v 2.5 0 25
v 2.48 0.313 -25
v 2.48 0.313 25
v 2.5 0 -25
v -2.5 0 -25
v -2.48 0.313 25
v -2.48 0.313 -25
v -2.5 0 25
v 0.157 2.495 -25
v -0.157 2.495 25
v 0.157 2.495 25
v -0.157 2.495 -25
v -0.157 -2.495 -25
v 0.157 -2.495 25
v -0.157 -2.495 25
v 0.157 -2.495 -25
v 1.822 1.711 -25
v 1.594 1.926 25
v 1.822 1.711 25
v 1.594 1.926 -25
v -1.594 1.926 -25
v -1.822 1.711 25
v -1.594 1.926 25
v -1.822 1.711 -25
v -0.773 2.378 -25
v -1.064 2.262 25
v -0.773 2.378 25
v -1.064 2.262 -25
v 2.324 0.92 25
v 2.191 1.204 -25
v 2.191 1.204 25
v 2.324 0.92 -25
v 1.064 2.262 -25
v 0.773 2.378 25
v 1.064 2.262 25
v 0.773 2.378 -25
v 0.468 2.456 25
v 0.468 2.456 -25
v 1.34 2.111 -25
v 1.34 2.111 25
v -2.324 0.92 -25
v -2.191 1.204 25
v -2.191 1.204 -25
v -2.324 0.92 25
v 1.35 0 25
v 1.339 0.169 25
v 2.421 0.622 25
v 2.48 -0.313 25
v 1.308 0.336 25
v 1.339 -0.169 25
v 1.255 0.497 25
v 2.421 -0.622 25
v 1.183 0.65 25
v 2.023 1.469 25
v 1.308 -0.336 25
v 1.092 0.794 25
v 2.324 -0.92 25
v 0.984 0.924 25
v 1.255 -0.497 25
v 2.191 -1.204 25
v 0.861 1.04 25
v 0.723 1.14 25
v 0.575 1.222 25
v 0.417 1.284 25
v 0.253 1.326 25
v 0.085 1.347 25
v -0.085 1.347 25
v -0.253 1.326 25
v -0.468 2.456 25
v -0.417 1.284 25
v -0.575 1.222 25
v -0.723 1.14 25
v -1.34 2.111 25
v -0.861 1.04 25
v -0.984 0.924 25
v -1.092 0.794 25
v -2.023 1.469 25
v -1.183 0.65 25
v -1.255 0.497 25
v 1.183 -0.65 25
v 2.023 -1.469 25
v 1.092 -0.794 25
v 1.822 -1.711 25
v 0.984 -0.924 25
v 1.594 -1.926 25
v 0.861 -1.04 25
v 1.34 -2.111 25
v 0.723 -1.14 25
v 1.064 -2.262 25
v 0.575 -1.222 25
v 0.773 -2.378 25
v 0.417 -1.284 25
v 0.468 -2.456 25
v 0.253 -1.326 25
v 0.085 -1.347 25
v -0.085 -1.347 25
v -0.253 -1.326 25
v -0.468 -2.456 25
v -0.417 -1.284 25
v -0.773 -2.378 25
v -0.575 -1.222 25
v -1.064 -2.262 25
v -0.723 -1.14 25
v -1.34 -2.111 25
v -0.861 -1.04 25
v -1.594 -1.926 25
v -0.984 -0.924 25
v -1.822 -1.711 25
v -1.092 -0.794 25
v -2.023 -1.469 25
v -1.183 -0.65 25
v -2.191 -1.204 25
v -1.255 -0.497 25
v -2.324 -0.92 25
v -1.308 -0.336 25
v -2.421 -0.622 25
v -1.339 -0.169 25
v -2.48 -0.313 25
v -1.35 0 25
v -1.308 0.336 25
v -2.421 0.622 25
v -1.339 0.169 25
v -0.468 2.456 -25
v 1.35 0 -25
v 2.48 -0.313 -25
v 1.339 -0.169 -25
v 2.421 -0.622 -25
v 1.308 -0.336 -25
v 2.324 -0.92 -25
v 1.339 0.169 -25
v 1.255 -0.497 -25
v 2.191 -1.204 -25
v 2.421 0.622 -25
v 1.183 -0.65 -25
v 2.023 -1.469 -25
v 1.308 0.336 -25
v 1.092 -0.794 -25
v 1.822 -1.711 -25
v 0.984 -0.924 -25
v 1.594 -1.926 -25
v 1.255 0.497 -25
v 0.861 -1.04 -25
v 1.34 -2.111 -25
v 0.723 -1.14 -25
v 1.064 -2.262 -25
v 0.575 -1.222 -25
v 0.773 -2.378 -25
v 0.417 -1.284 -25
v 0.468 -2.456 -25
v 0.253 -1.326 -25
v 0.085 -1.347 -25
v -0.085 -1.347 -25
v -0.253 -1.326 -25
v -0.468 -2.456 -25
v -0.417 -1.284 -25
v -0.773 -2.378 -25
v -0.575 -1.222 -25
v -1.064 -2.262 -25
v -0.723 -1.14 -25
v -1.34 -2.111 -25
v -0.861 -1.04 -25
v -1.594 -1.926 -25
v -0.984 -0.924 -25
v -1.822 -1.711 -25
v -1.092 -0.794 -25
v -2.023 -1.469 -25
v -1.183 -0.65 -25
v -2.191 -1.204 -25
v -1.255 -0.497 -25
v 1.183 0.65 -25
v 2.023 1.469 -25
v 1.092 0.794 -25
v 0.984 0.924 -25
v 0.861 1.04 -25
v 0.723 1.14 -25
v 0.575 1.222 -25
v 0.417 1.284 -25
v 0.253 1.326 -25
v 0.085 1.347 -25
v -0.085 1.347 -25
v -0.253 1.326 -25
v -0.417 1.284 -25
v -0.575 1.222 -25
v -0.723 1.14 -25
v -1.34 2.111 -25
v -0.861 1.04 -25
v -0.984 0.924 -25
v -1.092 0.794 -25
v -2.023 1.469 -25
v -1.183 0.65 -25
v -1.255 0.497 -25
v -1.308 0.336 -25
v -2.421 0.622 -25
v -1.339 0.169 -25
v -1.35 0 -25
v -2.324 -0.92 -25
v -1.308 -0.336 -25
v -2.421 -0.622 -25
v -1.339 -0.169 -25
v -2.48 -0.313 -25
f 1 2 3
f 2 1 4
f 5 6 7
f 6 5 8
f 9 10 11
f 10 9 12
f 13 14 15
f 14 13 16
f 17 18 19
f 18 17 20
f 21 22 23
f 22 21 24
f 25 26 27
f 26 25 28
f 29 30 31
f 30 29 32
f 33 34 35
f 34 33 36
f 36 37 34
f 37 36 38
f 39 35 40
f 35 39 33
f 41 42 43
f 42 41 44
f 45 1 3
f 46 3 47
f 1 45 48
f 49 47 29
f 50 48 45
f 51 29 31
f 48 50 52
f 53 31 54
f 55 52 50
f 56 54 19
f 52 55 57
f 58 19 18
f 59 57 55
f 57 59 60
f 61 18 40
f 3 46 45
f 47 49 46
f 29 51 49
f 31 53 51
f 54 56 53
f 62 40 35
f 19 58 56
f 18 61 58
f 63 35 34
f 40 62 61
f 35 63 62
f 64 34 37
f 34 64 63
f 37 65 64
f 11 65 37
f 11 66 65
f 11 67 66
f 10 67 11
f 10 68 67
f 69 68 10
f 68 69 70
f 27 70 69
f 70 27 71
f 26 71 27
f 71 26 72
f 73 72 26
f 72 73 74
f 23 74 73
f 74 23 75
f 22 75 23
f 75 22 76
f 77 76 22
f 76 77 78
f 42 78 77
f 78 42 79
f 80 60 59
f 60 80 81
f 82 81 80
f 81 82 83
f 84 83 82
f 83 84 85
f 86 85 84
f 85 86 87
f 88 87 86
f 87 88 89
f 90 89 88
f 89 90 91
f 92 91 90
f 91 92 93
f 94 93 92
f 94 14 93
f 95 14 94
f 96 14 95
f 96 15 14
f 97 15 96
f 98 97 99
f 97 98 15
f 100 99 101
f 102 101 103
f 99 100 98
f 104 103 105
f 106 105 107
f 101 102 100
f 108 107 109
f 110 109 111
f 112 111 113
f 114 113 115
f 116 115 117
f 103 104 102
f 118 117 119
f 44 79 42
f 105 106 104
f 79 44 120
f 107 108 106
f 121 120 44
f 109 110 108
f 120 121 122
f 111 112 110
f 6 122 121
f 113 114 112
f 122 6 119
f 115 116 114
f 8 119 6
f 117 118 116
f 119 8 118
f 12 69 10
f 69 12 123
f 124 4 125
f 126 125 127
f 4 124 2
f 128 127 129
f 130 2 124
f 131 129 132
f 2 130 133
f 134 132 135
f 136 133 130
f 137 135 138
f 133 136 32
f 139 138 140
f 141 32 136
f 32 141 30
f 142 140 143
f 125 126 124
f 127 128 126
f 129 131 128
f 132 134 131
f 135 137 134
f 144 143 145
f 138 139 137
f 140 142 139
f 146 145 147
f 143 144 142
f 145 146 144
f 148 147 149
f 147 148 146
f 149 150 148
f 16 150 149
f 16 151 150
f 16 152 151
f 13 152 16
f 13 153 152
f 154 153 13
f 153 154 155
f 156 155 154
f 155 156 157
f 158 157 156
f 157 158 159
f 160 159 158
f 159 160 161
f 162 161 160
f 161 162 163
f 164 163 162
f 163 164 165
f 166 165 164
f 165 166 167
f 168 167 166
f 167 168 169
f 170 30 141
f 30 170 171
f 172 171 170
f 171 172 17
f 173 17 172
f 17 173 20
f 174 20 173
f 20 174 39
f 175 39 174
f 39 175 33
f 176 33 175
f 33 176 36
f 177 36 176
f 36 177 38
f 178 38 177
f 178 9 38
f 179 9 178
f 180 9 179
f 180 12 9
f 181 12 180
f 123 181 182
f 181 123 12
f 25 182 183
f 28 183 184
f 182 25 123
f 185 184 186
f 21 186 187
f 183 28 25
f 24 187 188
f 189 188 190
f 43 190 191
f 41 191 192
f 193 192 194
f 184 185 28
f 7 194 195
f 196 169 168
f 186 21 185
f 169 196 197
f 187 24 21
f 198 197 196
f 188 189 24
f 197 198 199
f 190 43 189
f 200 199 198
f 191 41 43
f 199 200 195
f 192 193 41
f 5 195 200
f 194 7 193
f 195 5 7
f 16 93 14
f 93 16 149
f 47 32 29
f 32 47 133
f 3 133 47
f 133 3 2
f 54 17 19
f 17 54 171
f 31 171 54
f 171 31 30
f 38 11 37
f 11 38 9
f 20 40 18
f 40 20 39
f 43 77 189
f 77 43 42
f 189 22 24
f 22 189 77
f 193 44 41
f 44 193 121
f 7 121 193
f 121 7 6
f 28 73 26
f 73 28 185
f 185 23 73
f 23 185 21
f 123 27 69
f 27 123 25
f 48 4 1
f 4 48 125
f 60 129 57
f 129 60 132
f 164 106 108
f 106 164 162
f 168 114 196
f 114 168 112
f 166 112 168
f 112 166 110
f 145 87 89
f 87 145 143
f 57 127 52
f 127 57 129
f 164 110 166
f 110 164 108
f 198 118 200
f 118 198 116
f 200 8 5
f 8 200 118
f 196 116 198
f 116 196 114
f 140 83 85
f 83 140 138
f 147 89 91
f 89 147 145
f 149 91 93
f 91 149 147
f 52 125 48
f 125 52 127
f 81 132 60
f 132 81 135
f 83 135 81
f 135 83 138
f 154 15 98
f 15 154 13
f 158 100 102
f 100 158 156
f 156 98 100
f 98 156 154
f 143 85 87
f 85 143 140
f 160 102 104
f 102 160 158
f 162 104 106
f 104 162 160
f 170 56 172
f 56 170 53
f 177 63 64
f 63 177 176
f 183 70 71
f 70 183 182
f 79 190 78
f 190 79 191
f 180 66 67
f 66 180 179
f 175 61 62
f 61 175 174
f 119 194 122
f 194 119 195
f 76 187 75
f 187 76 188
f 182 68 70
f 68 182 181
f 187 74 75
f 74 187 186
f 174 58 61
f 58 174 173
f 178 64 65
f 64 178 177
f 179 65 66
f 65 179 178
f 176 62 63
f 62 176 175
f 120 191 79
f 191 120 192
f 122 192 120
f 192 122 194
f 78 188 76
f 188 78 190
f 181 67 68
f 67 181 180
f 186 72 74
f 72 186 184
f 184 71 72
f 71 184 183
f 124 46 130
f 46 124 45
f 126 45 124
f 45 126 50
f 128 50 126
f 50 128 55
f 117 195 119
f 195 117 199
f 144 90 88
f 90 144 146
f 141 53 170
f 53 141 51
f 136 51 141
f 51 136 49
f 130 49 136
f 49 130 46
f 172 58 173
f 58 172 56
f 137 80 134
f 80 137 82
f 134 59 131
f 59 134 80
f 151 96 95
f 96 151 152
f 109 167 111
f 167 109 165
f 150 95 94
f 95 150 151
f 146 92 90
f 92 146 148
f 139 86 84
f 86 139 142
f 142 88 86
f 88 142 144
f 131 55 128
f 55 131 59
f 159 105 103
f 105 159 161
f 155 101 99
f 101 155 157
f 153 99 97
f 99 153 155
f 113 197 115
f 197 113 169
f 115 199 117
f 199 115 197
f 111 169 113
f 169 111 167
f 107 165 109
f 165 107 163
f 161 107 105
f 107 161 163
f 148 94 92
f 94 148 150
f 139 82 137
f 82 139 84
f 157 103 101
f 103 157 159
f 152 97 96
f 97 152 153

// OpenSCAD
$fn = 50;


difference() {
	union() {
		translate(v = [0, 0, -25.0000000000]) {
			cylinder(h = 50, r = 2.5000000000);
		}
	}
	union() {
		translate(v = [0, 0, -100.0000000000]) {
			cylinder(h = 200, r = 1.3500000000);
		}
	}
}
